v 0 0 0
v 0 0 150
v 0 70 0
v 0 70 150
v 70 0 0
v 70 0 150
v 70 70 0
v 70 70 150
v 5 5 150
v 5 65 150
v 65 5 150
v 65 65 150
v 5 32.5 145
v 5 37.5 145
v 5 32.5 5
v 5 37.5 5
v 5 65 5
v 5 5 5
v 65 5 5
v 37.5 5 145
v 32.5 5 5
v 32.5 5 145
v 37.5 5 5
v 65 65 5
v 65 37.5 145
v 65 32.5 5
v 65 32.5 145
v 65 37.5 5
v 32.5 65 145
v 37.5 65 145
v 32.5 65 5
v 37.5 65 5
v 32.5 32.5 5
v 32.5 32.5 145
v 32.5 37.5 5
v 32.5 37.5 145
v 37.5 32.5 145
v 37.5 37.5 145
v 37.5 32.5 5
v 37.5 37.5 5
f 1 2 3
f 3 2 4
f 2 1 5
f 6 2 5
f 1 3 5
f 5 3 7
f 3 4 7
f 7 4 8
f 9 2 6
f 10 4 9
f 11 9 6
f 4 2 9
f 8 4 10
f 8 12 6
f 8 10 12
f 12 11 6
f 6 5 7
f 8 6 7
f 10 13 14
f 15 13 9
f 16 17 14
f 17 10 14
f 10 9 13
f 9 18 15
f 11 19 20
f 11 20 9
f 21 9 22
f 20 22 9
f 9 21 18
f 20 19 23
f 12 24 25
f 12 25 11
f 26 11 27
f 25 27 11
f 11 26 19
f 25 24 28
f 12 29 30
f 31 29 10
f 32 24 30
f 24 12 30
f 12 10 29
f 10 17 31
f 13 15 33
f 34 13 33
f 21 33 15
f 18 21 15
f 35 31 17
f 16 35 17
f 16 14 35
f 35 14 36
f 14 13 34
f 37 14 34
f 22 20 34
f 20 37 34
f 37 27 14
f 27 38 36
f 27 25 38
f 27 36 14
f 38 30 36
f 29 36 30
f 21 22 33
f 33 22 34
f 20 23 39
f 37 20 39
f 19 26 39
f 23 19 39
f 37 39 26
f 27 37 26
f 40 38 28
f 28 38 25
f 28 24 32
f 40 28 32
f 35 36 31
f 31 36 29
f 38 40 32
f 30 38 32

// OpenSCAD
//Leone Ermer
/*Parametic Box with Dividers and Lid
2013 3D Fabrication

Note: 
To remove Lid and Dividers make false
if fourSections = true the box is divided into 4 sections
if fourSections = false the box only has 3 sections

*/

//Box Controls
boxWidth = 70; // Y axis
boxLength = 70; // X axis
boxDepth = 150; 
boxThickness = 5;

// Box Divider Controls
dividerThickness = boxThickness;
yDivider = true; // Divider that runs along y axis
xDivider = true ; // Divider that runs along x axis
fourSections = true; // true = 4 sections / false = 3 sections
//Controls Dividers' Positions along respective axes
yDividerPos = (boxWidth/2)-(dividerThickness/2);
xDividerPos = (boxLength/2)-(dividerThickness/2); //Currently Centered
xDividerWidth = 0; //Currently Centered

// Lid Controls
lid = false; //True for a lid, False for no lid

//Adds Box
	box();
//Adds Dividers
	if(yDivider == true){
		yDivider();
	}
	if(xDivider == true){
		xDivider();
	}
// Adds Lid
	if(lid == true){
		translate([boxWidth + 10, 0, 0])
		lid();
	}

module box(){
	difference(){
		cube([boxWidth,boxLength,boxDepth]);
		translate([boxThickness,boxThickness,boxThickness])
		cube([boxWidth-(boxThickness *2),boxLength-(boxThickness *2),boxDepth-boxThickness]);
	}
}

module lid(){
		cube([boxWidth,boxLength,boxThickness]);
		translate([boxThickness,boxThickness,boxThickness])
		cube([boxWidth-(boxThickness *2),boxLength-(boxThickness *2),boxThickness]);
}

module yDivider(){
		translate([yDividerPos, 0, 0])
		cube([dividerThickness,boxLength,boxDepth-boxThickness]);
}
module xDivider(){
	translate([0, xDividerPos, 0])
	if(fourSections == true){
		cube([boxWidth,dividerThickness,boxDepth-boxThickness]);
	}
	else{
	cube([yDividerPos,dividerThickness,boxDepth-boxThickness]);
	}
}
